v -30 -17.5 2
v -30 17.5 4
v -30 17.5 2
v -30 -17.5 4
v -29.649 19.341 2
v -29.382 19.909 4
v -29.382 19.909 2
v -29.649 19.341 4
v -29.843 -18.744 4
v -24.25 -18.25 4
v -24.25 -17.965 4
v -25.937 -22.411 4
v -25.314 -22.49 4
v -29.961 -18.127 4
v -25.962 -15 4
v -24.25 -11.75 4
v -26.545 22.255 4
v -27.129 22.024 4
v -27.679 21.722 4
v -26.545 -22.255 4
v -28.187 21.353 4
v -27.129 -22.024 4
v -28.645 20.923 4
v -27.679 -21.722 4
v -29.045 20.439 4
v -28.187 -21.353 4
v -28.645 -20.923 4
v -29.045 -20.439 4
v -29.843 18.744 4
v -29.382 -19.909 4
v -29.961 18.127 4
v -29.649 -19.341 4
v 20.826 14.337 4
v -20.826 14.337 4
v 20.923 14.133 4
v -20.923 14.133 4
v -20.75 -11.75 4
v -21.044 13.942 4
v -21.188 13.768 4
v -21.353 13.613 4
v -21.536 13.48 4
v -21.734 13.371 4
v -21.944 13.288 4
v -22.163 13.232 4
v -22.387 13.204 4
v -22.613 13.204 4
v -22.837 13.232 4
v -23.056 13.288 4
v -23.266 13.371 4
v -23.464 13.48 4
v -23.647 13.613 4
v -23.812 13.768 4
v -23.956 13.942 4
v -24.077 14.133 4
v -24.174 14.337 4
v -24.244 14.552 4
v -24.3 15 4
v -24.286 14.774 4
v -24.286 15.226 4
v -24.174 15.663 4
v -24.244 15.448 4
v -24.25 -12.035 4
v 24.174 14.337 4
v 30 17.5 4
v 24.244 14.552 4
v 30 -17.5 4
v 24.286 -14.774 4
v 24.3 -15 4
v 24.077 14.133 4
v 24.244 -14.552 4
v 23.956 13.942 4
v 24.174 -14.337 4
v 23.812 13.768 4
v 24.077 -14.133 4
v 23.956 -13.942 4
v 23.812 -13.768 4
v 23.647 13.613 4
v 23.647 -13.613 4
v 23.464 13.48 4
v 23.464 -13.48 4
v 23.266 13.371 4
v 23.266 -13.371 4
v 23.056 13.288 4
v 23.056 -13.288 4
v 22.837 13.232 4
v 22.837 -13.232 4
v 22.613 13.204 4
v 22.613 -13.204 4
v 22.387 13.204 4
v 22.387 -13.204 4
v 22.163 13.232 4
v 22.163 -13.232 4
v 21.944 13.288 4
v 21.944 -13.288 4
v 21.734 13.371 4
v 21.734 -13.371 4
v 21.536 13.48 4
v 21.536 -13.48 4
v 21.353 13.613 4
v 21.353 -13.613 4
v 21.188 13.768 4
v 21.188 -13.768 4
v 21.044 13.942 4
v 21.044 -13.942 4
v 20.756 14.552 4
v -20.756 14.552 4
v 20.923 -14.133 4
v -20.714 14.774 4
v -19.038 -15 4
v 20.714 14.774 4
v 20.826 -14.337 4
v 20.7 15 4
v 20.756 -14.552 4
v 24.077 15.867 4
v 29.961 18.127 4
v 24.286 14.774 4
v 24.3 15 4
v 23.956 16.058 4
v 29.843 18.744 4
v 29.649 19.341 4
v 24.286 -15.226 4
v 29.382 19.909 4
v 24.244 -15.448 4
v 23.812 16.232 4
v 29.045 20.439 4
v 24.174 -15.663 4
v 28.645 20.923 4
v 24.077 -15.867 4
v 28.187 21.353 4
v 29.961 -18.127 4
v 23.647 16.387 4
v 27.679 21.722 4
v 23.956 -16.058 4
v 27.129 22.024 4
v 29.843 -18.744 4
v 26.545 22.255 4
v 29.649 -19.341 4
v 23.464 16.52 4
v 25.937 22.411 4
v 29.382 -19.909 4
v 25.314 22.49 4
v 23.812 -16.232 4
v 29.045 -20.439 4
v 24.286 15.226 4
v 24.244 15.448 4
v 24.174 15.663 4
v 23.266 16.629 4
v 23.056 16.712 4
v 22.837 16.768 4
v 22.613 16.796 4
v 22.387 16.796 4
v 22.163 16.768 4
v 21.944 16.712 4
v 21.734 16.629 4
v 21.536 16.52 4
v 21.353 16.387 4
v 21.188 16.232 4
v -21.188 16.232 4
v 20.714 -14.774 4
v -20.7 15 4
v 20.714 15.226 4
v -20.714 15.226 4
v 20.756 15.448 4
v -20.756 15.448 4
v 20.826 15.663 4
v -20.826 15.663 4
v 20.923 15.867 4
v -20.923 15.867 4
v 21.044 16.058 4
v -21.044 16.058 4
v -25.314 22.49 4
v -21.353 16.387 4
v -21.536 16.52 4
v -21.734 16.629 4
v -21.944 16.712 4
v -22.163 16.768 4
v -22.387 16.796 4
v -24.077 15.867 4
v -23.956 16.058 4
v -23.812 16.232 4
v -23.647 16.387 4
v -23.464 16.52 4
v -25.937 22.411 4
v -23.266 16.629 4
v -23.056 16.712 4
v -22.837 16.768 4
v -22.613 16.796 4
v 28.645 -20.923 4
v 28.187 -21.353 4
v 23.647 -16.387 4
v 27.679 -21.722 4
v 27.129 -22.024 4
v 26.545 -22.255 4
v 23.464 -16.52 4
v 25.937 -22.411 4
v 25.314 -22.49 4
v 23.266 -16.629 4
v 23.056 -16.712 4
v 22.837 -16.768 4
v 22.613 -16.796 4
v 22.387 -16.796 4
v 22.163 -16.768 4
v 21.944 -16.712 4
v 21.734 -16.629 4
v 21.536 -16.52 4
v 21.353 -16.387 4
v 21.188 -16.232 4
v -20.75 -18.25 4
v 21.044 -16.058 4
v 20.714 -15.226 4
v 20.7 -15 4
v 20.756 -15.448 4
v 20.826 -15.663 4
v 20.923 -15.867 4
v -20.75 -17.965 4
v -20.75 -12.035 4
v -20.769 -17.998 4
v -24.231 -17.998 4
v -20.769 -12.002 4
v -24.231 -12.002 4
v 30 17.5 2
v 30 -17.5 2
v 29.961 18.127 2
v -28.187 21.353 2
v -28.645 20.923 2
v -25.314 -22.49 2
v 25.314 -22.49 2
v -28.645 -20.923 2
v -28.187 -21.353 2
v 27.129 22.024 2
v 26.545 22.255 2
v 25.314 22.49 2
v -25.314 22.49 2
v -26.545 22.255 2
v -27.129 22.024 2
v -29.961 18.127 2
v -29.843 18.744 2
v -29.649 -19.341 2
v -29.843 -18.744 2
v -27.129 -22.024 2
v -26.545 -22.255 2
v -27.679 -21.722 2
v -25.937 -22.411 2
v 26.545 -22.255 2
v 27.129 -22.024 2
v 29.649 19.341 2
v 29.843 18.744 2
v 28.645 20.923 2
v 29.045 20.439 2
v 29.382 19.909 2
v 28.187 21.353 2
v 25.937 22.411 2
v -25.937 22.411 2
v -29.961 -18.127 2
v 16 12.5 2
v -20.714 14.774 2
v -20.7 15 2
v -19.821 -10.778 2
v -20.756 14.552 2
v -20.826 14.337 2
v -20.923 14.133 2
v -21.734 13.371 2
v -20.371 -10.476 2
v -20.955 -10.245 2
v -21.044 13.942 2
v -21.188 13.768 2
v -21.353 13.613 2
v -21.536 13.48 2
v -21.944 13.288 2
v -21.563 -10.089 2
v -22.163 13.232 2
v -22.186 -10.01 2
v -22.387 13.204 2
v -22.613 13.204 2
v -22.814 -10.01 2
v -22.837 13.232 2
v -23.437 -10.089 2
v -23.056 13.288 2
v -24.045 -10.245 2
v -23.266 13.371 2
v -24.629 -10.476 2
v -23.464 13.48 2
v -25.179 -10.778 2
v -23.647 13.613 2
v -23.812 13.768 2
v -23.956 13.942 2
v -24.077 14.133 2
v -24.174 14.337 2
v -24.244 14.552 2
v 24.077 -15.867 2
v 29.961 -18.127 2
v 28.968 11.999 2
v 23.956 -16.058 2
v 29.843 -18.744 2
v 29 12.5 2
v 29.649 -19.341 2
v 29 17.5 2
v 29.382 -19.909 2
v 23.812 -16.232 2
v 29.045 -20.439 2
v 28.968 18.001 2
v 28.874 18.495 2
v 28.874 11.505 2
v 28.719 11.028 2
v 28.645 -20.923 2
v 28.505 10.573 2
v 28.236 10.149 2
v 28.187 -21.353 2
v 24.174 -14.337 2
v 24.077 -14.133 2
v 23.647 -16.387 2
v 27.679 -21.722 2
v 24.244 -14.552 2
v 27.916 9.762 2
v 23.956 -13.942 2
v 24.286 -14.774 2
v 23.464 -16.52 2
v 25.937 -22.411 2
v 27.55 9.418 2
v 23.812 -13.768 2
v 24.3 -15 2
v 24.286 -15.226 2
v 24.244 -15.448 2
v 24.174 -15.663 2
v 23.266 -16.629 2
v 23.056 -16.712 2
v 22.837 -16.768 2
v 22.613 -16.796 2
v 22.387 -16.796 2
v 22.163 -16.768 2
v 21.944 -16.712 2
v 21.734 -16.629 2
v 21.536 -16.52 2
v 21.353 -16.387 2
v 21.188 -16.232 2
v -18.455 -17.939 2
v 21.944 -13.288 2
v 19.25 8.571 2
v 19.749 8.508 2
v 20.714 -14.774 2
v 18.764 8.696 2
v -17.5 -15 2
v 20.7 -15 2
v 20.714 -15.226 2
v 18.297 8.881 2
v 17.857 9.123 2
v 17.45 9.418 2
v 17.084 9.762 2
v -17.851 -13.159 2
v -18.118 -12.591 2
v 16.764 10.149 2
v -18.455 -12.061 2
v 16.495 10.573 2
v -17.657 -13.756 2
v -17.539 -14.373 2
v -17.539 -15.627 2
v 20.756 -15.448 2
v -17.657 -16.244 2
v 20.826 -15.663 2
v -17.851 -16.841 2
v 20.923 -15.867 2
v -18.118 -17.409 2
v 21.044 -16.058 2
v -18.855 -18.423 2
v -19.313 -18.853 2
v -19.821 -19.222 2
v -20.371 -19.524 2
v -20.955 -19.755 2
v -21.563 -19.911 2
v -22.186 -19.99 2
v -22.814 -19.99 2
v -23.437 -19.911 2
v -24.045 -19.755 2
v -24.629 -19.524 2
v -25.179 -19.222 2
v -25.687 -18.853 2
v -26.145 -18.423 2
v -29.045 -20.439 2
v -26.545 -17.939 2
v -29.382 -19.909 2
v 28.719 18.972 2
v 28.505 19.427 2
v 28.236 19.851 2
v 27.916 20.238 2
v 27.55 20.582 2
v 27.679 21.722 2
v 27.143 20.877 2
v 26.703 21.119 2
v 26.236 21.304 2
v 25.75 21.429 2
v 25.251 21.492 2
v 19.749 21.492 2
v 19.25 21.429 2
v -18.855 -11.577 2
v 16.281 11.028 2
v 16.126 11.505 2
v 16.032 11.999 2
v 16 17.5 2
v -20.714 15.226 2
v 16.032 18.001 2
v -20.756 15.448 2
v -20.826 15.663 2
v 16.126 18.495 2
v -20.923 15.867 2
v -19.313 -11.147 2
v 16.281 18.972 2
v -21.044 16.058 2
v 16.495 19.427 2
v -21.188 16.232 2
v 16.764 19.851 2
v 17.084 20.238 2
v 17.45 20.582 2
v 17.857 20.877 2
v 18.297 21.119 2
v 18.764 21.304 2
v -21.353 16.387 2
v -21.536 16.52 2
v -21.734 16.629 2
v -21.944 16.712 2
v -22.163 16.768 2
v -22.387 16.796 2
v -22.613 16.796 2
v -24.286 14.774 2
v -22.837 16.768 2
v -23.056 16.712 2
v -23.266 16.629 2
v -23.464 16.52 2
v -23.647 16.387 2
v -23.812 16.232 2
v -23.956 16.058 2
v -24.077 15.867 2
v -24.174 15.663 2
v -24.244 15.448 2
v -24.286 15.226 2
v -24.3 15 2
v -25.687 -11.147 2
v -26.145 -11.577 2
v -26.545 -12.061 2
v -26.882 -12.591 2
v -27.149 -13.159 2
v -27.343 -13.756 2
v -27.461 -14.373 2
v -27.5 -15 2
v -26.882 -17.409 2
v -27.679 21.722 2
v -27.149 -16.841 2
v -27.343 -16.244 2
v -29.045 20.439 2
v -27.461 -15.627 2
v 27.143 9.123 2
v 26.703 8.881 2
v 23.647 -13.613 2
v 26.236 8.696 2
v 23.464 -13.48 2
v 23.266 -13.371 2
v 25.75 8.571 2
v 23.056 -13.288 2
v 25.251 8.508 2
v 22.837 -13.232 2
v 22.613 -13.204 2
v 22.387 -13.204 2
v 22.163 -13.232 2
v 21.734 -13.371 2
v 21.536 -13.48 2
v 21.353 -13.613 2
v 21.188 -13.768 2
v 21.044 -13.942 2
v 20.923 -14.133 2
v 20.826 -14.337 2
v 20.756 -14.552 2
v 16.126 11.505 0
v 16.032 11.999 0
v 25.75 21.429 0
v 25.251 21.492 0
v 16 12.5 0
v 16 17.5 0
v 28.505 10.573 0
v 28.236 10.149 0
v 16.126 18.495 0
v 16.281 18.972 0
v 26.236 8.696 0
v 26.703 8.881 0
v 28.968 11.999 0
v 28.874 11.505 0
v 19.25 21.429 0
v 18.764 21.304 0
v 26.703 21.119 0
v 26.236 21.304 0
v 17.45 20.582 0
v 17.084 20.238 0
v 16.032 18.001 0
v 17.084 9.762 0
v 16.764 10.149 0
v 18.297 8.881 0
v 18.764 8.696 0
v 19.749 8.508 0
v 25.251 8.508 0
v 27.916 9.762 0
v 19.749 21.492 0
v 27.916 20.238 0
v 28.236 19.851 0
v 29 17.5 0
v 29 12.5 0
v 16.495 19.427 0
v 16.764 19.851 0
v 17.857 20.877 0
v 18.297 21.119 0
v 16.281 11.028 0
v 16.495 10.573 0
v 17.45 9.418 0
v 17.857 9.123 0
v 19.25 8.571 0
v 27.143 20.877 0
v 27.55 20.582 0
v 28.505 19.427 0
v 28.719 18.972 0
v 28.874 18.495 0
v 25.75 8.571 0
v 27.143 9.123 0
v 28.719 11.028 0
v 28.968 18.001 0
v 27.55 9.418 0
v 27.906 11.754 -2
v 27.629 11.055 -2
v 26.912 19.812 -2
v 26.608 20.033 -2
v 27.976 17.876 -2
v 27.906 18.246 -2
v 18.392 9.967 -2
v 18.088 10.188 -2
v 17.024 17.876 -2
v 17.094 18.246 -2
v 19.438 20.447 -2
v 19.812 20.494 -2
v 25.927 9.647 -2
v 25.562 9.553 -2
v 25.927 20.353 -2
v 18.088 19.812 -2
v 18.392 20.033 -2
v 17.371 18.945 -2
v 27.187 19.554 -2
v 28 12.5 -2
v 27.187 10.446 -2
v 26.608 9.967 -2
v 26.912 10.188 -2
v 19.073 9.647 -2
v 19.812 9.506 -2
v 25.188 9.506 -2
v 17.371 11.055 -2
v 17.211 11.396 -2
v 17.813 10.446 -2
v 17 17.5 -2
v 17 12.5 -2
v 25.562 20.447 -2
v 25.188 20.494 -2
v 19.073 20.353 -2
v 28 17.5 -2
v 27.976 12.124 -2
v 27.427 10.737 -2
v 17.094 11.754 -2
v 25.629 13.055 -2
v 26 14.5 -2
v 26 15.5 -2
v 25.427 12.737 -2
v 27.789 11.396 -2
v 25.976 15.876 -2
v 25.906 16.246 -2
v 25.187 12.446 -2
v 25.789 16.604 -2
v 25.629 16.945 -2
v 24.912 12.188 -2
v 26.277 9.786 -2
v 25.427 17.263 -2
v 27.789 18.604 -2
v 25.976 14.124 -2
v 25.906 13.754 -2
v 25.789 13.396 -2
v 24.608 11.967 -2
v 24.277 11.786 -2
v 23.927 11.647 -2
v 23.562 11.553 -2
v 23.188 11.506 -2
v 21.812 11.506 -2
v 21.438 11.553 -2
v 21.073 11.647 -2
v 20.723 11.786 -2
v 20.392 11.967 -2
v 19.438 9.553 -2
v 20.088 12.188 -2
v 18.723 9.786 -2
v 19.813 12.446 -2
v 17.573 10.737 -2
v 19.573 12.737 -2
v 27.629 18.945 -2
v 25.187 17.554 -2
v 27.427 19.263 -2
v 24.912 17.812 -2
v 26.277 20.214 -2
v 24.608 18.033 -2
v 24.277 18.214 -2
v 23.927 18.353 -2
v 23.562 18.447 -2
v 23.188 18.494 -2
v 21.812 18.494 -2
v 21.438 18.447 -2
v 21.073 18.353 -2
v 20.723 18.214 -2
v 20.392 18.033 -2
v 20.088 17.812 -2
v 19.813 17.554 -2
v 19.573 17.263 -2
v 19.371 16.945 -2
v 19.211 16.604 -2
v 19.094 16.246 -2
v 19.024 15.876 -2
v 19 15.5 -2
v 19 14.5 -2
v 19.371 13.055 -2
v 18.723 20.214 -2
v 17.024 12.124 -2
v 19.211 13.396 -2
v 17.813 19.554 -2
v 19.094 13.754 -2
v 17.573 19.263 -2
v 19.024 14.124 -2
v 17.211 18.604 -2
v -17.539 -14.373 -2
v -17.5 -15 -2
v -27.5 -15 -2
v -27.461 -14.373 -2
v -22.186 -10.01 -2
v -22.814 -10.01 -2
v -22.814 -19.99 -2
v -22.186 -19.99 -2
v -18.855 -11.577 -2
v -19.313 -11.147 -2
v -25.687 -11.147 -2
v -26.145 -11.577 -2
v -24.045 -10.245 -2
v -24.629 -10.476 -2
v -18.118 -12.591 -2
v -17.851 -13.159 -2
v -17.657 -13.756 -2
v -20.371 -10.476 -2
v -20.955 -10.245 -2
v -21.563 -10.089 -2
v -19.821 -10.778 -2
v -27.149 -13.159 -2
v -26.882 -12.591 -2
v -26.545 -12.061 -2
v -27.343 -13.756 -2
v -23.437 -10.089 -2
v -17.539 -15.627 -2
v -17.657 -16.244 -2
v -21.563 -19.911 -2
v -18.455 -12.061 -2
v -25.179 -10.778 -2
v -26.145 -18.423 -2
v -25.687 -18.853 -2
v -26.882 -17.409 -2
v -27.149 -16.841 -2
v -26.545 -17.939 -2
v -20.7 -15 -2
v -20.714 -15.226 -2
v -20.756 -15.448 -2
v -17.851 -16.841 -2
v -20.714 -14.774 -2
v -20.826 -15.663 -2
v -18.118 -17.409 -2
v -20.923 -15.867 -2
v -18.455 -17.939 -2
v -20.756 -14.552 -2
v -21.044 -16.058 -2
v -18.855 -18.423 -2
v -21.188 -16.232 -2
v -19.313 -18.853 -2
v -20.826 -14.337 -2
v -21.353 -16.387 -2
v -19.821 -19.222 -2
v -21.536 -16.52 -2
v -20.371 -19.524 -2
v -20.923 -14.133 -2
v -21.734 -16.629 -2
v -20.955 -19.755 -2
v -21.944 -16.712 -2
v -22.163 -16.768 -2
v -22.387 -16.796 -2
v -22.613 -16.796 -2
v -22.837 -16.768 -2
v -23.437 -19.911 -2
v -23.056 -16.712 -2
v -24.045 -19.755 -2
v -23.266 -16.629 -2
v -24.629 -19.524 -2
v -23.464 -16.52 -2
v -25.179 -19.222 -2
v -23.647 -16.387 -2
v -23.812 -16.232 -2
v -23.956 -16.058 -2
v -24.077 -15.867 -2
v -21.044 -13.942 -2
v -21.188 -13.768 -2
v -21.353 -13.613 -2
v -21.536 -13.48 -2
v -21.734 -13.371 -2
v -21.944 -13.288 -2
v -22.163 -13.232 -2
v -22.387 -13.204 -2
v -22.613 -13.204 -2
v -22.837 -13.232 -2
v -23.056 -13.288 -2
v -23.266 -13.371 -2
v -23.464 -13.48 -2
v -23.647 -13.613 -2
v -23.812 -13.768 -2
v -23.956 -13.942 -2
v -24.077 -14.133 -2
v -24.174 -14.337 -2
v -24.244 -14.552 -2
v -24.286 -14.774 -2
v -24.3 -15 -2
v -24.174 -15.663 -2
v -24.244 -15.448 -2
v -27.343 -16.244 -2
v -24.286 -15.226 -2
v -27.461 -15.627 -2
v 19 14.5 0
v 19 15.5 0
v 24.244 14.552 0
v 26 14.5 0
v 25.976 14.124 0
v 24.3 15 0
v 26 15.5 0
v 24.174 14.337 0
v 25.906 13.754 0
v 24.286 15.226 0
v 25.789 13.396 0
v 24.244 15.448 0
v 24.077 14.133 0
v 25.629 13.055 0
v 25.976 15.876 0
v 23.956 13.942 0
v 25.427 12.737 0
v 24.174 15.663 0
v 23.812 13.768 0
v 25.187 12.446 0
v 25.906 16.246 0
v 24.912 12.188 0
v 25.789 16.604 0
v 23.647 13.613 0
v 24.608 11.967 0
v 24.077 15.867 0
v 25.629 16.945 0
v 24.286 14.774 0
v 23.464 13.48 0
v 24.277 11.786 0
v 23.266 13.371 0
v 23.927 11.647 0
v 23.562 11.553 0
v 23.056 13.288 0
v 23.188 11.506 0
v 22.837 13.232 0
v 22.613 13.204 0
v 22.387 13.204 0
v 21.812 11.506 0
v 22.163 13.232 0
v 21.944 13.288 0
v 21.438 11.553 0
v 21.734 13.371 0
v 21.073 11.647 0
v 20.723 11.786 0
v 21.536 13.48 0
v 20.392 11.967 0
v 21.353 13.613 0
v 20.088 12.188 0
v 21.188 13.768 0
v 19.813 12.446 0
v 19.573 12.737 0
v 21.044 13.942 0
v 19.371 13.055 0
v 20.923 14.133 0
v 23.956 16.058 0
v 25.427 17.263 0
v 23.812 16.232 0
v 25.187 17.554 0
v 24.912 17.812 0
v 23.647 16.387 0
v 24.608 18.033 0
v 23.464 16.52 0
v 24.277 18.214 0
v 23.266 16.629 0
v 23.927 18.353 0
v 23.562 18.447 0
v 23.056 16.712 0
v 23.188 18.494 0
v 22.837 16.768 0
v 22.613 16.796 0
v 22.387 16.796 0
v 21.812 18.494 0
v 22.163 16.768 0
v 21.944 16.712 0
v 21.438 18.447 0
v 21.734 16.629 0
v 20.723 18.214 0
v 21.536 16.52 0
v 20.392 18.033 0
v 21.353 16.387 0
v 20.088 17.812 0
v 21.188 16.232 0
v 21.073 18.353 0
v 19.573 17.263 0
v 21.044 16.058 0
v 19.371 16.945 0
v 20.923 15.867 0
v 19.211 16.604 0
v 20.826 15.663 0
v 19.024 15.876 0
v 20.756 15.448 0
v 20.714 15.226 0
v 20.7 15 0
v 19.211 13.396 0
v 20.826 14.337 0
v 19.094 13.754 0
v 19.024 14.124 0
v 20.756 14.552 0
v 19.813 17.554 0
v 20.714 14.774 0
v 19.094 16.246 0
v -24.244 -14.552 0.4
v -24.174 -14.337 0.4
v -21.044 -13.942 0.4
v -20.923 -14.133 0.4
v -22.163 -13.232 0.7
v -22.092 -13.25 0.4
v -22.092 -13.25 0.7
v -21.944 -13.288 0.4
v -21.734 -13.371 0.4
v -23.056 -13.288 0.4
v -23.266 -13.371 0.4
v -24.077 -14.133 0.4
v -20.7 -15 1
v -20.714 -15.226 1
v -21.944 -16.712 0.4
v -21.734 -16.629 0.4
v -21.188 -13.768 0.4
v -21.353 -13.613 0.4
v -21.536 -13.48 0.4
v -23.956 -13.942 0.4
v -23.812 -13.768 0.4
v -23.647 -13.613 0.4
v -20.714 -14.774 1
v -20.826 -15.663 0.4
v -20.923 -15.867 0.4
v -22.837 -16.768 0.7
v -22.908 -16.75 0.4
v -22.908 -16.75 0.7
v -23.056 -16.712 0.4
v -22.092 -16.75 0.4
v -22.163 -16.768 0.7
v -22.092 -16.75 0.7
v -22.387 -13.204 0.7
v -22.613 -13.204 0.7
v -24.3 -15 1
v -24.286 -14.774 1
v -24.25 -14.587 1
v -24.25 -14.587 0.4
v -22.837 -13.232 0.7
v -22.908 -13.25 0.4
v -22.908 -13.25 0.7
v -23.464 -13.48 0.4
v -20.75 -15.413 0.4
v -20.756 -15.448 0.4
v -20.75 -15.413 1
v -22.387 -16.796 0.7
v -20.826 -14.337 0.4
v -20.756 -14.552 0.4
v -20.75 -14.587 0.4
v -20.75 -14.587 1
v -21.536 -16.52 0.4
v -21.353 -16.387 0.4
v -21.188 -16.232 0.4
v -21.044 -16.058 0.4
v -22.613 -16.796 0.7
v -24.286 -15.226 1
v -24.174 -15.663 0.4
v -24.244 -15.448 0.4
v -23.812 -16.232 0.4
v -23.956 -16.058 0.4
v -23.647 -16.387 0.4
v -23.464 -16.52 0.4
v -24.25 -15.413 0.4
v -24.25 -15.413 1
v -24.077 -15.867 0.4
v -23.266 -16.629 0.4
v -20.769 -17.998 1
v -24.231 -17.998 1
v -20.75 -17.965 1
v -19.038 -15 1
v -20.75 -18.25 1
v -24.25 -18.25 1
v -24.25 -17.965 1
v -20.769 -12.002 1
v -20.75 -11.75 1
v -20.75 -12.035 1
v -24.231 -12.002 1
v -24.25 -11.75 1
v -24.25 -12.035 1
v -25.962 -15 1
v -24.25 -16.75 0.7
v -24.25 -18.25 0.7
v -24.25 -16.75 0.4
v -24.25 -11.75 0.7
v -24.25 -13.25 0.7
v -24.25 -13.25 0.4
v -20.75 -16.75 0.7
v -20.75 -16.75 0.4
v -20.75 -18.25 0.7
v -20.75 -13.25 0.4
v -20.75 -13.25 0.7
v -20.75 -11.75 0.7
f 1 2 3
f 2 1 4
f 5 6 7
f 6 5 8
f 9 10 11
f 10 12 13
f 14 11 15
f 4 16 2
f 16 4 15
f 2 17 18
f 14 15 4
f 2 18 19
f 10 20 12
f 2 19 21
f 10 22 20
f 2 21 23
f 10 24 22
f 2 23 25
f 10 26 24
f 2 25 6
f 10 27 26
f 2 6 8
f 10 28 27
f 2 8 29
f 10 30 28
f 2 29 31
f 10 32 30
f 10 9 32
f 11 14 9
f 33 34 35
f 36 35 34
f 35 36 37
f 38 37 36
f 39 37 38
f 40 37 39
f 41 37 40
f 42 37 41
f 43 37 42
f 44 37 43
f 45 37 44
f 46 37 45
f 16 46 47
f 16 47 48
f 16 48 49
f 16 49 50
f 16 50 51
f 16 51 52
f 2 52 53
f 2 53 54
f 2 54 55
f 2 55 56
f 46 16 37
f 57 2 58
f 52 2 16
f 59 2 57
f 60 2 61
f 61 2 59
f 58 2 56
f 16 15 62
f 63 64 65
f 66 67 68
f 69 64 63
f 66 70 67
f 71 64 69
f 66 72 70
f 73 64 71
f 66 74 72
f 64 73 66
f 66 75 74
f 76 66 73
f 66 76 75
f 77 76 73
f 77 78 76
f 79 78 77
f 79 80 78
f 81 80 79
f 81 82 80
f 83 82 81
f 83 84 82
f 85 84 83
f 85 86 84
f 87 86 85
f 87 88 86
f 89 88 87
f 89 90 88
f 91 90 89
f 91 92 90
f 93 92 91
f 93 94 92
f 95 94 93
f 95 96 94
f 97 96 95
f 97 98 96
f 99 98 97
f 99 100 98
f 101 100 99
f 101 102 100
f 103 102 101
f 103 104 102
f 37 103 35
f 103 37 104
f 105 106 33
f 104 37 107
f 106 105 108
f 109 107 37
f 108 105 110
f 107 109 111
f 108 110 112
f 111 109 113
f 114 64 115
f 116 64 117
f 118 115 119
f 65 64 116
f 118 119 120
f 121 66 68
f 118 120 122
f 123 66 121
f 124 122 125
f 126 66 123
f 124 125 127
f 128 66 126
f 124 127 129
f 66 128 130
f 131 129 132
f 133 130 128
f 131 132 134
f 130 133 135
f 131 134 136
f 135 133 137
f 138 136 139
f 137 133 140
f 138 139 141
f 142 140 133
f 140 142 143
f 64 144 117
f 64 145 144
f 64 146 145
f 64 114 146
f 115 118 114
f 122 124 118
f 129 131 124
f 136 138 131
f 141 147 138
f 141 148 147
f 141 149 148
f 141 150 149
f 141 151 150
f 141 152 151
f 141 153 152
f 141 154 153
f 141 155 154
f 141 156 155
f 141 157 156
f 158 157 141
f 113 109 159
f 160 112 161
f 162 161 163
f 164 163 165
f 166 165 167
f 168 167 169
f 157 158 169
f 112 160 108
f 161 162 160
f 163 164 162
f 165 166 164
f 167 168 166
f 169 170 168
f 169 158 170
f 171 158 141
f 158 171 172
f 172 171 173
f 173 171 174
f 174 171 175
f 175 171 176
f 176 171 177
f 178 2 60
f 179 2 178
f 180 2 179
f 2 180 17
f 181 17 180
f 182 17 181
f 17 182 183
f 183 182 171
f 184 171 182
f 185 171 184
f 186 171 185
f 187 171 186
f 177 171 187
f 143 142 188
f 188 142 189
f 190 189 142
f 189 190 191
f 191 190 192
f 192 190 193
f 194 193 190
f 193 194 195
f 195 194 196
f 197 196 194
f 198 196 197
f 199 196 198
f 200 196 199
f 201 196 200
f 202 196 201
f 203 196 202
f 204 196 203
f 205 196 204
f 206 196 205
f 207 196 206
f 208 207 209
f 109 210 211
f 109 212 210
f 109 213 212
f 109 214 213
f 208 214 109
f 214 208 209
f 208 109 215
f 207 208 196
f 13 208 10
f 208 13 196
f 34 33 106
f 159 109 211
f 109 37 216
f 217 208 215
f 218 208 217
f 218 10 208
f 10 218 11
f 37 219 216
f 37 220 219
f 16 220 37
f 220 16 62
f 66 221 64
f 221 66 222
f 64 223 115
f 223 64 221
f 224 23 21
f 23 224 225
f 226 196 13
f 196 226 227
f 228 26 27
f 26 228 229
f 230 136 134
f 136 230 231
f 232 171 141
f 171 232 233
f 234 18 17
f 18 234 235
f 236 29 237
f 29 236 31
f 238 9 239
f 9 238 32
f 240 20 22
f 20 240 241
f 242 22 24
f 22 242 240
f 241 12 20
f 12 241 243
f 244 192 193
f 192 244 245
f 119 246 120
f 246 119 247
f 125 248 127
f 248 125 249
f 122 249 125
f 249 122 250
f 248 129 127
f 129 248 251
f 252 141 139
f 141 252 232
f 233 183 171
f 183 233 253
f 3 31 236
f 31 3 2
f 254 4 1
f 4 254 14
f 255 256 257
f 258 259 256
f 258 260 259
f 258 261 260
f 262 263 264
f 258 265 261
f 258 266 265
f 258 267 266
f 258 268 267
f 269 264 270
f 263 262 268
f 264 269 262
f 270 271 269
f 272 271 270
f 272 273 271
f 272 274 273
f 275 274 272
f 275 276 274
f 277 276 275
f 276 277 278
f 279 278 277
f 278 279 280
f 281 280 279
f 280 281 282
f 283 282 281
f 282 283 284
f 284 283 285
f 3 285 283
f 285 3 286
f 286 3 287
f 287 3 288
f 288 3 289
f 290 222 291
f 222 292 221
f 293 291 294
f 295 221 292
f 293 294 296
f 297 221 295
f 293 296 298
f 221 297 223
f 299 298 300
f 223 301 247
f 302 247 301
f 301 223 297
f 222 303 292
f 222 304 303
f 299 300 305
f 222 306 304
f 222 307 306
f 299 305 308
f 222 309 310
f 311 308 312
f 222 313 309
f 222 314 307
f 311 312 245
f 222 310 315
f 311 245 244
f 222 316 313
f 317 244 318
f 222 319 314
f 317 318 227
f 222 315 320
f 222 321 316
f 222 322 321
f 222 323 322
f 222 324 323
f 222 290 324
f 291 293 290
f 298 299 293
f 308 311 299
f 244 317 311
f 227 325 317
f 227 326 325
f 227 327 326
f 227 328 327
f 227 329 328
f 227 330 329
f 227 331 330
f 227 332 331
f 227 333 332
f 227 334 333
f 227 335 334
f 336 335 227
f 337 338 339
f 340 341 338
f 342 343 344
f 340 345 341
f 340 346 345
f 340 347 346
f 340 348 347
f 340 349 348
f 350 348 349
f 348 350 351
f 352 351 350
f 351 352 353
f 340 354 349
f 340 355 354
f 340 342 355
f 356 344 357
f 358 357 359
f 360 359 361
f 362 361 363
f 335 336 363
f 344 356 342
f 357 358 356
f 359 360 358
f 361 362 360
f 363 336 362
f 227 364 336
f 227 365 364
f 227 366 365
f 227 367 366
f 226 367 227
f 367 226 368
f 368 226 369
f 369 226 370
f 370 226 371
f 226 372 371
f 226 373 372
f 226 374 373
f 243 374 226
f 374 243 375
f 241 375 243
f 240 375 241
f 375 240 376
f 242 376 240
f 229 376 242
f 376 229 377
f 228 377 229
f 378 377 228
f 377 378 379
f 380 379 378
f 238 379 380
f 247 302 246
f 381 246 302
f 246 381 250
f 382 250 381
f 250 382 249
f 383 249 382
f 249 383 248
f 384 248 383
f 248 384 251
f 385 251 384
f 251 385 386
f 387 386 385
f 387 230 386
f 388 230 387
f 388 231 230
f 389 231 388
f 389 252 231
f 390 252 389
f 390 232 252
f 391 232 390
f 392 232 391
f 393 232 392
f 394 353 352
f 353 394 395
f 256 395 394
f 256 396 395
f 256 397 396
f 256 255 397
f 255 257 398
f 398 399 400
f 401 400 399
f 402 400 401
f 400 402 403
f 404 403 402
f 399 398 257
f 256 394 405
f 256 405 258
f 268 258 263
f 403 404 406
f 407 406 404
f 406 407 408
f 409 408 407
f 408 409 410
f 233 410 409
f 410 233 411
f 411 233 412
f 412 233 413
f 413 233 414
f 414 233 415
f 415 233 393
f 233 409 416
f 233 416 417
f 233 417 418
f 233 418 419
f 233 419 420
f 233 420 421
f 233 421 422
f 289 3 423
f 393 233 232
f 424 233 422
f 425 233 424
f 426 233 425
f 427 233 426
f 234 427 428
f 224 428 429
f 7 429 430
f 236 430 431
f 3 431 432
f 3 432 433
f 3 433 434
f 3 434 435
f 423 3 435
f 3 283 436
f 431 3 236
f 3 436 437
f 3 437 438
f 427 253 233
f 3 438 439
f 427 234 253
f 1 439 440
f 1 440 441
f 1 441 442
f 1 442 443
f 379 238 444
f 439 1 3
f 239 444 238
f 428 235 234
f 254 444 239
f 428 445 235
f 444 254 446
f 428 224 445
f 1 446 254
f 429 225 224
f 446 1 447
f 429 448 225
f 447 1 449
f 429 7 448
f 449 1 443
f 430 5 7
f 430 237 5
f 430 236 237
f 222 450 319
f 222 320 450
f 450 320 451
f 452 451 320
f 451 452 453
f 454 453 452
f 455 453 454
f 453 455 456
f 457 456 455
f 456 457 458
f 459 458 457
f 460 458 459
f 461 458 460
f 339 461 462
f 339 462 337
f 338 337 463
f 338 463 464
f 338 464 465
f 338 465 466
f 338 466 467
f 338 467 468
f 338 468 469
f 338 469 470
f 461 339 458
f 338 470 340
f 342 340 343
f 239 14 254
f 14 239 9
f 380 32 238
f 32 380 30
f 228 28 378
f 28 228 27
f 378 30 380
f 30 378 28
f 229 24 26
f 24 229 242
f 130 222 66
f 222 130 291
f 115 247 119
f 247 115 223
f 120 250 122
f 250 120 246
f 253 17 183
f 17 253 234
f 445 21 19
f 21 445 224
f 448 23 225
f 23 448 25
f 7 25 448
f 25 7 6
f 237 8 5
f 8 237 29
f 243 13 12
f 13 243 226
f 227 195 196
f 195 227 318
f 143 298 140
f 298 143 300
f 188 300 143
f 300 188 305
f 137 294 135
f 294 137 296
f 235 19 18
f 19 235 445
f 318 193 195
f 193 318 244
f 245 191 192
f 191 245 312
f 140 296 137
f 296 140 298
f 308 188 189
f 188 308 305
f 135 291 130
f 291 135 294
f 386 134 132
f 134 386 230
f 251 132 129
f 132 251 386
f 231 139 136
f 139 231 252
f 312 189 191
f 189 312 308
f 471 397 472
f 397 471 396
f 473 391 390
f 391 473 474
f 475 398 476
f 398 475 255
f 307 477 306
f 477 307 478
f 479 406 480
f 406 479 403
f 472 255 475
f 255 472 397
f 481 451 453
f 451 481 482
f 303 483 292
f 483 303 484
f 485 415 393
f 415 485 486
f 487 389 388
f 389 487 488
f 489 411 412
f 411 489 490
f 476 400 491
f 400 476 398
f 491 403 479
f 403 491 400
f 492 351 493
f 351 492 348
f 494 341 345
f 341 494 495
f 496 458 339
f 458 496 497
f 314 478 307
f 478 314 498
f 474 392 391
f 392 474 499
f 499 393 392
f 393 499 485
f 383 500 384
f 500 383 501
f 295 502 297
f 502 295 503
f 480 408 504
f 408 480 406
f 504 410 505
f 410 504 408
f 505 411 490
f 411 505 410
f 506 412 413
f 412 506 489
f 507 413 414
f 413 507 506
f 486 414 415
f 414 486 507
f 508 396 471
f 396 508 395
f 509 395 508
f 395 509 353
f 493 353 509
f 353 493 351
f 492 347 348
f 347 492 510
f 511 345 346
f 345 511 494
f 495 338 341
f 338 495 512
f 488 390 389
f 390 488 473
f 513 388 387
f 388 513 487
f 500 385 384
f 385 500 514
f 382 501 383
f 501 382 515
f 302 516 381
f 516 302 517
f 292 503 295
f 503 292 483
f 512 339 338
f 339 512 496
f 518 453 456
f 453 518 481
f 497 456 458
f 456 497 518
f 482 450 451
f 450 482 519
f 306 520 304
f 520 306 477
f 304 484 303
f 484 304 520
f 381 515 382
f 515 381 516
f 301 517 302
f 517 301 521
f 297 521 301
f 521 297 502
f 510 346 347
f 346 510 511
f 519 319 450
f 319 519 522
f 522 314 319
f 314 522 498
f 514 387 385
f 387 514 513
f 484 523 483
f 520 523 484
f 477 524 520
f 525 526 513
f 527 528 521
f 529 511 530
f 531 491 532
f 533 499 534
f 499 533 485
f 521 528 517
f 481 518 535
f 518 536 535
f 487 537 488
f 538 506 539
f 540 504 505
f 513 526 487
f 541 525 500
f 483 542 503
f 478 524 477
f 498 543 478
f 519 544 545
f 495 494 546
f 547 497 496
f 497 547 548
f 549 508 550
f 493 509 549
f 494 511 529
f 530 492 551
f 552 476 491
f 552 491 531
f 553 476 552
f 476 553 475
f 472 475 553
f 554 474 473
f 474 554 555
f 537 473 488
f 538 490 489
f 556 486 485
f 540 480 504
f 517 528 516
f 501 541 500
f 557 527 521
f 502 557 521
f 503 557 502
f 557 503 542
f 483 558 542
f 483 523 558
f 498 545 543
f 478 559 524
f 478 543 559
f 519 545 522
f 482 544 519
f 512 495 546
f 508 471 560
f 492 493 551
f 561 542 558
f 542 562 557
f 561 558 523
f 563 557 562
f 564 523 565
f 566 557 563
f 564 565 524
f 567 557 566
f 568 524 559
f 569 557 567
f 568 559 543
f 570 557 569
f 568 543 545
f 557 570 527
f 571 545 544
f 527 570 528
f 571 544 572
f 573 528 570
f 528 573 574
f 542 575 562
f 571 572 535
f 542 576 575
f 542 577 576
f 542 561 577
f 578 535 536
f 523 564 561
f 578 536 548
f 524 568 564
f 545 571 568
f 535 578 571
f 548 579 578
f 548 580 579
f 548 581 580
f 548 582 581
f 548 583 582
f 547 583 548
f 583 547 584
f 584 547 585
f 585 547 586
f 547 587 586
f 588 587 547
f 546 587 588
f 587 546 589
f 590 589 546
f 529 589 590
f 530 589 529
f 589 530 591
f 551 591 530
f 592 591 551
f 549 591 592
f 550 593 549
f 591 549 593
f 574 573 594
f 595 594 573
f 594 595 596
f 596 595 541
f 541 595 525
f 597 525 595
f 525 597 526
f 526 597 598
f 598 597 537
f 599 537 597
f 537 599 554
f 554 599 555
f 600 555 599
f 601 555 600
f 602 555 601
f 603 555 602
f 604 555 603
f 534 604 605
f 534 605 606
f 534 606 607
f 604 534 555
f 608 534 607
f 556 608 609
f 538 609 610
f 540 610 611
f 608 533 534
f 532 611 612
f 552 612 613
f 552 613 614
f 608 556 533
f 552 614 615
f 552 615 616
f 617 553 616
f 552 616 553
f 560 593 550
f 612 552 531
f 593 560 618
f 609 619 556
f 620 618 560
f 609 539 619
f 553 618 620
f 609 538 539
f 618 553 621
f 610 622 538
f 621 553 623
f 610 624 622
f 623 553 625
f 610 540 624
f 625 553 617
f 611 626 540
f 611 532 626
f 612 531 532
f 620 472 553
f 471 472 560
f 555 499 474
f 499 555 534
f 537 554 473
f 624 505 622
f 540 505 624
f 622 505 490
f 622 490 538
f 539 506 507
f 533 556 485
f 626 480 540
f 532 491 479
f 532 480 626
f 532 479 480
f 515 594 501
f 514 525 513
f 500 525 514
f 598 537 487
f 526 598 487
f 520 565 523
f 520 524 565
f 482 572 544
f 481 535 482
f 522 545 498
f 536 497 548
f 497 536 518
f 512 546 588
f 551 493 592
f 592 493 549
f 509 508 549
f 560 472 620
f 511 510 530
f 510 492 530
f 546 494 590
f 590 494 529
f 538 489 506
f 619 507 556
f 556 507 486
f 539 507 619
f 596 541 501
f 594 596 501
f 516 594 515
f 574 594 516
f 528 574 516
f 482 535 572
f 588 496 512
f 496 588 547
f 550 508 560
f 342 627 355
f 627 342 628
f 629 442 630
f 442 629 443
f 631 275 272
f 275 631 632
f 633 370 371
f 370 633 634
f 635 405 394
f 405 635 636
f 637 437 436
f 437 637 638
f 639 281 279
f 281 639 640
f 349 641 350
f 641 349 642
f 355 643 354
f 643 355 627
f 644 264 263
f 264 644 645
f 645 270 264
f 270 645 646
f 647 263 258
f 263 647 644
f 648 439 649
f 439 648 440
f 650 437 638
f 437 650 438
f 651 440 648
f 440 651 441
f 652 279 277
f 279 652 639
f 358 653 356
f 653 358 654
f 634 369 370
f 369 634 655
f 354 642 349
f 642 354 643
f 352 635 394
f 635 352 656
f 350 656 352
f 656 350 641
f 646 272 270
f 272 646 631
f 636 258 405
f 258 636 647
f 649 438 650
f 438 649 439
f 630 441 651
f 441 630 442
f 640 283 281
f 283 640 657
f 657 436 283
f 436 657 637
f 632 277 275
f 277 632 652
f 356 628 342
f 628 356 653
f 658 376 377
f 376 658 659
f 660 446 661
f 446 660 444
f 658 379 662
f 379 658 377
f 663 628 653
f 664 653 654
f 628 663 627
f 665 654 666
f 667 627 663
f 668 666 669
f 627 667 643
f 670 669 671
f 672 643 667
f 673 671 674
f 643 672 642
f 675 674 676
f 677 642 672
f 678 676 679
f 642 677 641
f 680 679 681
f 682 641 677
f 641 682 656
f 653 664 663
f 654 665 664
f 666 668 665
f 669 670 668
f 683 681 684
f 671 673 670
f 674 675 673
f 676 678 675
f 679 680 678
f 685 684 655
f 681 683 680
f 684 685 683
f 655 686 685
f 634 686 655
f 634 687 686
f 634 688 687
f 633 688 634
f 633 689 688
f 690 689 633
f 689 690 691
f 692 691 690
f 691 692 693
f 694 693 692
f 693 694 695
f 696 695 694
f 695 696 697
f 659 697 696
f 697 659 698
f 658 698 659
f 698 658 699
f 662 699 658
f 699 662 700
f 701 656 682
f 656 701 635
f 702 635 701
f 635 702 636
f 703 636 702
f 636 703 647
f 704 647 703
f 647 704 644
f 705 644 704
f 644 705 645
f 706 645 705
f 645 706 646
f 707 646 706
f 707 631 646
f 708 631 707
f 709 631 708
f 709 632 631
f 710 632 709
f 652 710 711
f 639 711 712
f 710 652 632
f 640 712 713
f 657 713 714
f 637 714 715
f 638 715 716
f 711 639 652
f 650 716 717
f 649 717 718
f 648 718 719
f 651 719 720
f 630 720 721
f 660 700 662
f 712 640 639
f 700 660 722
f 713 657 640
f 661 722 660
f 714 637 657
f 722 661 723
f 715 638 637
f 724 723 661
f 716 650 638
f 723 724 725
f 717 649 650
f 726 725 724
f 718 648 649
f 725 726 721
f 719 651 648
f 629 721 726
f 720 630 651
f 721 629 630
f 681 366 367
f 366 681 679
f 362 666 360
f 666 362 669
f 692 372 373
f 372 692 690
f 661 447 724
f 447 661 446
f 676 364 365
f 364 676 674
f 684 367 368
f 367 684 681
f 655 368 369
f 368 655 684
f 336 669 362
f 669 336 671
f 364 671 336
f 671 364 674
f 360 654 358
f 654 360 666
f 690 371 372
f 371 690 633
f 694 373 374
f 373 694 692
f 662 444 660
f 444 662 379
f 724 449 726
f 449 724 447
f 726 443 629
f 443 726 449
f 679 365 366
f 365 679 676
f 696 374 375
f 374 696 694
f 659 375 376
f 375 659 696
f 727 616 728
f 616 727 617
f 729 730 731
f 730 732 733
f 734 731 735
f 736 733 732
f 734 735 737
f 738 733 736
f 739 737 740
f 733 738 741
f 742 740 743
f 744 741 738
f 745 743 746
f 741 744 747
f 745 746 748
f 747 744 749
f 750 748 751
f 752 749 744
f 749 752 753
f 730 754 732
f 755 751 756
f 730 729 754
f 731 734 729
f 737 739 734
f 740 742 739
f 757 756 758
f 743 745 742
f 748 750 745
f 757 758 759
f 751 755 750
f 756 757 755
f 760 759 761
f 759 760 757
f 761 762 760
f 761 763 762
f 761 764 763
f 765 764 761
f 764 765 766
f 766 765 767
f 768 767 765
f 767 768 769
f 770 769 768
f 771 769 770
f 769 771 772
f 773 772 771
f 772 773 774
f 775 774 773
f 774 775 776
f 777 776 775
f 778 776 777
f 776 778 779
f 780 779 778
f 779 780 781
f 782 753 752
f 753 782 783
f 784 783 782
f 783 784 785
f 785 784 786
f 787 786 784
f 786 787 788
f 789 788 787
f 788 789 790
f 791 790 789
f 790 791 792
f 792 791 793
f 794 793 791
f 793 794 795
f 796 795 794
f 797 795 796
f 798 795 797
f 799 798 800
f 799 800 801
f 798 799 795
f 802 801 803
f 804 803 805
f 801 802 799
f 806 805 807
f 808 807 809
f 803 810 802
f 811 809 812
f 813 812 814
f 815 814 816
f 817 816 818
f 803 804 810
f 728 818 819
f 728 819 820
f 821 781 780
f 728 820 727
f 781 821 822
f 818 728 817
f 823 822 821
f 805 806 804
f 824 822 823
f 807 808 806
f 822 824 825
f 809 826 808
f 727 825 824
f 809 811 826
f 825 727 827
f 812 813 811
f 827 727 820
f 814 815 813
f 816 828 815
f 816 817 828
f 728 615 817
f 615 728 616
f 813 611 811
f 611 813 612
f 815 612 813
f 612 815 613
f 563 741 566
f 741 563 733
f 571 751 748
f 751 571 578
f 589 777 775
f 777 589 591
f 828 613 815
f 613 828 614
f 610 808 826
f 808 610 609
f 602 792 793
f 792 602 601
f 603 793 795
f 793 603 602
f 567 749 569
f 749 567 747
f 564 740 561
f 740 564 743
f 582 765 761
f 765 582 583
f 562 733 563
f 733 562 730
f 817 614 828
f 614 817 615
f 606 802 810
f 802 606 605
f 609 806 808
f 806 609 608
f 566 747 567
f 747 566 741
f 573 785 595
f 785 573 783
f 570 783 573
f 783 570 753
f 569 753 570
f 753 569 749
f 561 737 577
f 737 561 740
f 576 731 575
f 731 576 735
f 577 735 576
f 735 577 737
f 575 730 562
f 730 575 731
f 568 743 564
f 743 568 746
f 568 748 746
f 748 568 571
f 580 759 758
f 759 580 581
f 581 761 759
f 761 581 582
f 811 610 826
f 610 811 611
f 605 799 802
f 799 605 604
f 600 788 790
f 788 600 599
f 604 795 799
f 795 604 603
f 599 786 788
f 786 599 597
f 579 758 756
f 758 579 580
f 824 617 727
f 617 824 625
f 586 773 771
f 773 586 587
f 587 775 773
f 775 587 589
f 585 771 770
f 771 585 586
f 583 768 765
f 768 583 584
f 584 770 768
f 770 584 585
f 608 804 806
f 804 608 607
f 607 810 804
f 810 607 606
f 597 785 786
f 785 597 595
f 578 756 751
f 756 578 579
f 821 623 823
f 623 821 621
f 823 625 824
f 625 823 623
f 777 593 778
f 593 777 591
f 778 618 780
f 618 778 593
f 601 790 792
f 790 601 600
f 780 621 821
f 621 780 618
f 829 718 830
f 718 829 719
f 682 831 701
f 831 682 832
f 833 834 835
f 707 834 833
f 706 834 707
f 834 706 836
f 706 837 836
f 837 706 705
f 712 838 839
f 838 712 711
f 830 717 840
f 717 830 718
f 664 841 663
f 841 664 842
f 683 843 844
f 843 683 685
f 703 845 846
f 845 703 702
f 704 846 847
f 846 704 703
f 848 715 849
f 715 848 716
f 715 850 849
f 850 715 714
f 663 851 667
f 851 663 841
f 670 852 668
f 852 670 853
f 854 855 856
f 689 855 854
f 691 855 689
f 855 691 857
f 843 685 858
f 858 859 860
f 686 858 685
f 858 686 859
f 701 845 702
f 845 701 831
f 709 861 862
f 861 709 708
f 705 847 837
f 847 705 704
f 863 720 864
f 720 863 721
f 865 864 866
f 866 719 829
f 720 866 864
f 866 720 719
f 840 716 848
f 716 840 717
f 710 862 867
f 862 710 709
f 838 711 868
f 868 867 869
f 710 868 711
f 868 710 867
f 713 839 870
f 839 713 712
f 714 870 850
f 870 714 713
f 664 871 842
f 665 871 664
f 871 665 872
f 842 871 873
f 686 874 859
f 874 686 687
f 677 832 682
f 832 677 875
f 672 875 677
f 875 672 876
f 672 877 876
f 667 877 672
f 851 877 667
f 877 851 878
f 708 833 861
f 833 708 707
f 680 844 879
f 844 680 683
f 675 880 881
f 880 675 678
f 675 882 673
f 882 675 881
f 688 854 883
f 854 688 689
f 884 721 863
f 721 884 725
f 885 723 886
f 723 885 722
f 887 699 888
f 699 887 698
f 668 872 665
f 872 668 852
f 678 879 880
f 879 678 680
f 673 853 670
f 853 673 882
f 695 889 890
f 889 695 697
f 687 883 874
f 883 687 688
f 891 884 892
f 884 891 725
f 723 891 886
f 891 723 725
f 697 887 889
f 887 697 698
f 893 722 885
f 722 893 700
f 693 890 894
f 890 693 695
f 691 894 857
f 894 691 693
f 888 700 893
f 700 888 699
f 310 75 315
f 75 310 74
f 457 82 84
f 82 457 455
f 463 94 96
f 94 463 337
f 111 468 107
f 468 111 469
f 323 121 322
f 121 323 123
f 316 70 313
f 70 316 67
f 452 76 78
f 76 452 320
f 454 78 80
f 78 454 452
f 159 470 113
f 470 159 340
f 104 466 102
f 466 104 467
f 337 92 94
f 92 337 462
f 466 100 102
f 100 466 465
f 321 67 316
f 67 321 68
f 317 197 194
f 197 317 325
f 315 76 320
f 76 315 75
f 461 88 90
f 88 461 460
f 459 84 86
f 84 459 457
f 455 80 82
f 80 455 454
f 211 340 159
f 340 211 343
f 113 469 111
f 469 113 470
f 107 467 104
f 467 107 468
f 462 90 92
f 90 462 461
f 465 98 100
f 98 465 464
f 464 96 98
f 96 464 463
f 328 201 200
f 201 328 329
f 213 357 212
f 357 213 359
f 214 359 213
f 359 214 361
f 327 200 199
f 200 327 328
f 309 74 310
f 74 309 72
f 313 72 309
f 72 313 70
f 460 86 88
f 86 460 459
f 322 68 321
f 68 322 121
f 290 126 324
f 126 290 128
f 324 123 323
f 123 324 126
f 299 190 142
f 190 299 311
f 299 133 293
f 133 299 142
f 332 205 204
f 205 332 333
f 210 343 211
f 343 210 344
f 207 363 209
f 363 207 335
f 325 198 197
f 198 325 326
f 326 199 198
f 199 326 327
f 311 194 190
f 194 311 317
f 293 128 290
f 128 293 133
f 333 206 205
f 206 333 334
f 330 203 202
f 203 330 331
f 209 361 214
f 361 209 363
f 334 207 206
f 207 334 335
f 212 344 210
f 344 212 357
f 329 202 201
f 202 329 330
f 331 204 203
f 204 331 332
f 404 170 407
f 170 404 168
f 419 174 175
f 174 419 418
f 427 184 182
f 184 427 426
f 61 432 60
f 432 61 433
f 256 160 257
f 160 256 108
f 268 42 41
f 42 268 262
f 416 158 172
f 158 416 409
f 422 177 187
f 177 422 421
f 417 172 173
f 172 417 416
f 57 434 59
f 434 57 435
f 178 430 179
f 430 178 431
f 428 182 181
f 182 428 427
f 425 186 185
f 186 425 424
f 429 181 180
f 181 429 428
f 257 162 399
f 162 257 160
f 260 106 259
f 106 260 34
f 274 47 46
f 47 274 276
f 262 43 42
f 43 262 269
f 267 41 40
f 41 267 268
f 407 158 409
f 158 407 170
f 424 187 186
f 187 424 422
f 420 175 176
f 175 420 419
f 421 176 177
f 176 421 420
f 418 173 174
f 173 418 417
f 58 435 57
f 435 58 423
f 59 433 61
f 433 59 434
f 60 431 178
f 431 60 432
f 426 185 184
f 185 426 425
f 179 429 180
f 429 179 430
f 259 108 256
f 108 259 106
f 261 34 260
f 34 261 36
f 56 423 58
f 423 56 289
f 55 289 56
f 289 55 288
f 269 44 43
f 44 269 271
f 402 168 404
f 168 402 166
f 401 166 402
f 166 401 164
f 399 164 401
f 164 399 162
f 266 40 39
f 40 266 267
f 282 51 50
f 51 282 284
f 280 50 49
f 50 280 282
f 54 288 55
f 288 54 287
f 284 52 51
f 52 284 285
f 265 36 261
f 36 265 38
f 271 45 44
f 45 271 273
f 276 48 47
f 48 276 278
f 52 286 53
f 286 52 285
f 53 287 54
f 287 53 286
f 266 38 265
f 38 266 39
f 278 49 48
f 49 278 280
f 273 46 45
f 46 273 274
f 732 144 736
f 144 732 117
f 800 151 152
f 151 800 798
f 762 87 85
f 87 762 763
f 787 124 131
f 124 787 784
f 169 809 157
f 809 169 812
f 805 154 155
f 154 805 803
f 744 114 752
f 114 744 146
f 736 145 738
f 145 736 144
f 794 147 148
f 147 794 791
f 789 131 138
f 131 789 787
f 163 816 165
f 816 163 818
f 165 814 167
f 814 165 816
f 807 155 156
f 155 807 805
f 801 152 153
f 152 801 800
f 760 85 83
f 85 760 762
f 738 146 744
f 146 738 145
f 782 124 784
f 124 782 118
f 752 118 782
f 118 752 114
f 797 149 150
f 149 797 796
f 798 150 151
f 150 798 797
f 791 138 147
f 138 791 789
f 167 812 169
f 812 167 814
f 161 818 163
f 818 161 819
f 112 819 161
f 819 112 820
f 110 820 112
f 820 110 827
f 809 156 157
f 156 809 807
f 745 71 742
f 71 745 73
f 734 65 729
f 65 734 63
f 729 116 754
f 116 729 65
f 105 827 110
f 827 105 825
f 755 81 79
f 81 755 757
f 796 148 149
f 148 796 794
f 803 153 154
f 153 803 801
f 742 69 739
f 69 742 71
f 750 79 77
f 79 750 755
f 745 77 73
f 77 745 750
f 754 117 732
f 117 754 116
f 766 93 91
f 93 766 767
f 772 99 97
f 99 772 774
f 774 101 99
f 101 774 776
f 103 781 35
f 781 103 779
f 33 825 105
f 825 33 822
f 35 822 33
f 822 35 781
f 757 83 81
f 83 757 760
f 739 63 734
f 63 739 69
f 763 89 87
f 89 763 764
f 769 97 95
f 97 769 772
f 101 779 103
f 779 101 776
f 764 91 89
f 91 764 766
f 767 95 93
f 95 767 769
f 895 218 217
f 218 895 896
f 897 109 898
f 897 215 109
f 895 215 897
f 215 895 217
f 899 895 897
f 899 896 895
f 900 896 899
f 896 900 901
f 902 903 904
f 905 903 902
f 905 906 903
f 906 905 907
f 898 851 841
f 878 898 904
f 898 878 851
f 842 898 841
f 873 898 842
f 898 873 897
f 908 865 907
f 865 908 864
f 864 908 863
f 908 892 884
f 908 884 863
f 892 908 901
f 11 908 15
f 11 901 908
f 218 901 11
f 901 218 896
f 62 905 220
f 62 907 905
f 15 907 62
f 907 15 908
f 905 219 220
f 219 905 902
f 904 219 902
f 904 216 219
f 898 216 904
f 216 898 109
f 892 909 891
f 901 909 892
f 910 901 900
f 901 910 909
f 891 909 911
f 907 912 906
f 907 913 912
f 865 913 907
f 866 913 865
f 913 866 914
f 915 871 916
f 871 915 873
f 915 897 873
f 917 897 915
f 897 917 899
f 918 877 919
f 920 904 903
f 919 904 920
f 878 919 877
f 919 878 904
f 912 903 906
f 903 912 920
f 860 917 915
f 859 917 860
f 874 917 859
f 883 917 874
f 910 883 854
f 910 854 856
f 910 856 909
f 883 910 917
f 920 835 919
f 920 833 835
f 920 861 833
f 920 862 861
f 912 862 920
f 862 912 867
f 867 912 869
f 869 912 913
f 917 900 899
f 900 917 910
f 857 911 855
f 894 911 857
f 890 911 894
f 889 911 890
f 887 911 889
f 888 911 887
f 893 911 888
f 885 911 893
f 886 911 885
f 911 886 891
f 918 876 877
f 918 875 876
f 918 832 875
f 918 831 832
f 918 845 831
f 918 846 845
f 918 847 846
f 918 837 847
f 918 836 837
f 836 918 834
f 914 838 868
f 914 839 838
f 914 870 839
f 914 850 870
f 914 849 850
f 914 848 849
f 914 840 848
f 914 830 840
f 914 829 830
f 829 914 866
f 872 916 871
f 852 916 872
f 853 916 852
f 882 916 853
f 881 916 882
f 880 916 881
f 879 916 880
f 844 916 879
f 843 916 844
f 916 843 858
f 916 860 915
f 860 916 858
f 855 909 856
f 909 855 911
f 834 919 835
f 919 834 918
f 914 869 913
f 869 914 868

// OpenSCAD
$fn = 50;


difference() {
	union() {
		translate(v = [0, 0, 2]) {
			rotate(a = [0, 0, 0]) {
				hull() {
					translate(v = [-25.0000000000, 17.5000000000, 0]) {
						rotate(a = [0, 0, 0]) {
							translate(v = [0, 0, 0]) {
								rotate(a = [0, 0, 0]) {
									cylinder(h = 2, r = 5);
								}
							}
						}
					}
					translate(v = [25.0000000000, 17.5000000000, 0]) {
						rotate(a = [0, 0, 0]) {
							translate(v = [0, 0, 0]) {
								rotate(a = [0, 0, 0]) {
									cylinder(h = 2, r = 5);
								}
							}
						}
					}
					translate(v = [-25.0000000000, -17.5000000000, 0]) {
						rotate(a = [0, 0, 0]) {
							translate(v = [0, 0, 0]) {
								rotate(a = [0, 0, 0]) {
									cylinder(h = 2, r = 5);
								}
							}
						}
					}
					translate(v = [25.0000000000, -17.5000000000, 0]) {
						rotate(a = [0, 0, 0]) {
							translate(v = [0, 0, 0]) {
								rotate(a = [0, 0, 0]) {
									cylinder(h = 2, r = 5);
								}
							}
						}
					}
				}
			}
		}
		translate(v = [22.5000000000, 15.0000000000, 0]) {
			rotate(a = [0, 0, 0]) {
				hull() {
					translate(v = [-2.5000000000, 2.5000000000, 0]) {
						rotate(a = [0, 0, 0]) {
							cylinder(h = 2, r1 = 4.0000000000, r2 = 4.0000000000);
						}
					}
					translate(v = [2.5000000000, 2.5000000000, 0]) {
						rotate(a = [0, 0, 0]) {
							cylinder(h = 2, r1 = 4.0000000000, r2 = 4.0000000000);
						}
					}
					translate(v = [-2.5000000000, -2.5000000000, 0]) {
						rotate(a = [0, 0, 0]) {
							cylinder(h = 2, r1 = 4.0000000000, r2 = 4.0000000000);
						}
					}
					translate(v = [2.5000000000, -2.5000000000, 0]) {
						rotate(a = [0, 0, 0]) {
							cylinder(h = 2, r1 = 4.0000000000, r2 = 4.0000000000);
						}
					}
				}
			}
		}
		translate(v = [22.5000000000, 15.0000000000, -2]) {
			rotate(a = [0, 180, 0]) {
				hull() {
					translate(v = [-2.5000000000, 2.5000000000, 0]) {
						rotate(a = [0, 180, 0]) {
							cylinder(h = 2, r1 = 3.0000000000, r2 = 4.0000000000);
						}
					}
					translate(v = [2.5000000000, 2.5000000000, 0]) {
						rotate(a = [0, 180, 0]) {
							cylinder(h = 2, r1 = 3.0000000000, r2 = 4.0000000000);
						}
					}
					translate(v = [-2.5000000000, -2.5000000000, 0]) {
						rotate(a = [0, 180, 0]) {
							cylinder(h = 2, r1 = 3.0000000000, r2 = 4.0000000000);
						}
					}
					translate(v = [2.5000000000, -2.5000000000, 0]) {
						rotate(a = [0, 180, 0]) {
							cylinder(h = 2, r1 = 3.0000000000, r2 = 4.0000000000);
						}
					}
				}
			}
		}
		translate(v = [-22.5000000000, -15.0000000000, -2.0000000000]) {
			rotate(a = [0, 0, 0]) {
				cylinder(h = 4, r = 5);
			}
		}
	}
	union() {
		translate(v = [22.5000000000, 15.0000000000, -2]) {
			rotate(a = [0, 0, 0]) {
				hull() {
					translate(v = [-0.5000000000, 0.5000000000, 0]) {
						rotate(a = [0, 0, 0]) {
							translate(v = [0, 0, 0]) {
								rotate(a = [0, 0, 0]) {
									cylinder(h = 2, r = 3.0000000000);
								}
							}
						}
					}
					translate(v = [0.5000000000, 0.5000000000, 0]) {
						rotate(a = [0, 0, 0]) {
							translate(v = [0, 0, 0]) {
								rotate(a = [0, 0, 0]) {
									cylinder(h = 2, r = 3.0000000000);
								}
							}
						}
					}
					translate(v = [-0.5000000000, -0.5000000000, 0]) {
						rotate(a = [0, 0, 0]) {
							translate(v = [0, 0, 0]) {
								rotate(a = [0, 0, 0]) {
									cylinder(h = 2, r = 3.0000000000);
								}
							}
						}
					}
					translate(v = [0.5000000000, -0.5000000000, 0]) {
						rotate(a = [0, 0, 0]) {
							translate(v = [0, 0, 0]) {
								rotate(a = [0, 0, 0]) {
									cylinder(h = 2, r = 3.0000000000);
								}
							}
						}
					}
				}
			}
		}
		translate(v = [-22.5000000000, -15.0000000000, -50]) {
			rotate(a = [0, 0, 0]) {
				cylinder(h = 100, r = 1.8000000000);
			}
		}
		translate(v = [22.5000000000, -15.0000000000, -50]) {
			rotate(a = [0, 0, 0]) {
				cylinder(h = 100, r = 1.8000000000);
			}
		}
		translate(v = [-22.5000000000, 15.0000000000, -50]) {
			rotate(a = [0, 0, 0]) {
				cylinder(h = 100, r = 1.8000000000);
			}
		}
		translate(v = [22.5000000000, 15.0000000000, -50]) {
			rotate(a = [0, 0, 0]) {
				cylinder(h = 100, r = 1.8000000000);
			}
		}
		translate(v = [-22.5000000000, -15.0000000000, 1]) {
			rotate(a = [0, 0, 0]) {
				#translate(v = [0, 0, 0]) {
					rotate(a = [0, 0, 0]) {
						linear_extrude(height = 3) {
							polygon(points = [[3.4620000000, 0.0000000000], [1.7310000000, 2.9981799479], [-1.7310000000, 2.9981799479], [-3.4620000000, 0.0000000000], [-1.7310000000, -2.9981799479], [1.7310000000, -2.9981799479]]);
						}
					}
				}
			}
		}
		#translate(v = [-24.2500000000, -18.2500000000, 4]) {
			rotate(a = [0, 0, 0]) {
				cube(size = [3.5000000000, 6.5000000000, 0.3000000000]);
			}
		}
		#translate(v = [-24.2500000000, -16.7500000000, 4.3000000000]) {
			rotate(a = [0, 0, 0]) {
				cube(size = [3.5000000000, 3.5000000000, 0.3000000000]);
			}
		}
		#translate(v = [-24.2500000000, -18.2500000000, 0.7000000000]) {
			rotate(a = [0, 0, 0]) {
				cube(size = [3.5000000000, 6.5000000000, 0.3000000000]);
			}
		}
		#translate(v = [-24.2500000000, -16.7500000000, 0.4000000000]) {
			rotate(a = [0, 0, 0]) {
				cube(size = [3.5000000000, 3.5000000000, 0.3000000000]);
			}
		}
	}
}
